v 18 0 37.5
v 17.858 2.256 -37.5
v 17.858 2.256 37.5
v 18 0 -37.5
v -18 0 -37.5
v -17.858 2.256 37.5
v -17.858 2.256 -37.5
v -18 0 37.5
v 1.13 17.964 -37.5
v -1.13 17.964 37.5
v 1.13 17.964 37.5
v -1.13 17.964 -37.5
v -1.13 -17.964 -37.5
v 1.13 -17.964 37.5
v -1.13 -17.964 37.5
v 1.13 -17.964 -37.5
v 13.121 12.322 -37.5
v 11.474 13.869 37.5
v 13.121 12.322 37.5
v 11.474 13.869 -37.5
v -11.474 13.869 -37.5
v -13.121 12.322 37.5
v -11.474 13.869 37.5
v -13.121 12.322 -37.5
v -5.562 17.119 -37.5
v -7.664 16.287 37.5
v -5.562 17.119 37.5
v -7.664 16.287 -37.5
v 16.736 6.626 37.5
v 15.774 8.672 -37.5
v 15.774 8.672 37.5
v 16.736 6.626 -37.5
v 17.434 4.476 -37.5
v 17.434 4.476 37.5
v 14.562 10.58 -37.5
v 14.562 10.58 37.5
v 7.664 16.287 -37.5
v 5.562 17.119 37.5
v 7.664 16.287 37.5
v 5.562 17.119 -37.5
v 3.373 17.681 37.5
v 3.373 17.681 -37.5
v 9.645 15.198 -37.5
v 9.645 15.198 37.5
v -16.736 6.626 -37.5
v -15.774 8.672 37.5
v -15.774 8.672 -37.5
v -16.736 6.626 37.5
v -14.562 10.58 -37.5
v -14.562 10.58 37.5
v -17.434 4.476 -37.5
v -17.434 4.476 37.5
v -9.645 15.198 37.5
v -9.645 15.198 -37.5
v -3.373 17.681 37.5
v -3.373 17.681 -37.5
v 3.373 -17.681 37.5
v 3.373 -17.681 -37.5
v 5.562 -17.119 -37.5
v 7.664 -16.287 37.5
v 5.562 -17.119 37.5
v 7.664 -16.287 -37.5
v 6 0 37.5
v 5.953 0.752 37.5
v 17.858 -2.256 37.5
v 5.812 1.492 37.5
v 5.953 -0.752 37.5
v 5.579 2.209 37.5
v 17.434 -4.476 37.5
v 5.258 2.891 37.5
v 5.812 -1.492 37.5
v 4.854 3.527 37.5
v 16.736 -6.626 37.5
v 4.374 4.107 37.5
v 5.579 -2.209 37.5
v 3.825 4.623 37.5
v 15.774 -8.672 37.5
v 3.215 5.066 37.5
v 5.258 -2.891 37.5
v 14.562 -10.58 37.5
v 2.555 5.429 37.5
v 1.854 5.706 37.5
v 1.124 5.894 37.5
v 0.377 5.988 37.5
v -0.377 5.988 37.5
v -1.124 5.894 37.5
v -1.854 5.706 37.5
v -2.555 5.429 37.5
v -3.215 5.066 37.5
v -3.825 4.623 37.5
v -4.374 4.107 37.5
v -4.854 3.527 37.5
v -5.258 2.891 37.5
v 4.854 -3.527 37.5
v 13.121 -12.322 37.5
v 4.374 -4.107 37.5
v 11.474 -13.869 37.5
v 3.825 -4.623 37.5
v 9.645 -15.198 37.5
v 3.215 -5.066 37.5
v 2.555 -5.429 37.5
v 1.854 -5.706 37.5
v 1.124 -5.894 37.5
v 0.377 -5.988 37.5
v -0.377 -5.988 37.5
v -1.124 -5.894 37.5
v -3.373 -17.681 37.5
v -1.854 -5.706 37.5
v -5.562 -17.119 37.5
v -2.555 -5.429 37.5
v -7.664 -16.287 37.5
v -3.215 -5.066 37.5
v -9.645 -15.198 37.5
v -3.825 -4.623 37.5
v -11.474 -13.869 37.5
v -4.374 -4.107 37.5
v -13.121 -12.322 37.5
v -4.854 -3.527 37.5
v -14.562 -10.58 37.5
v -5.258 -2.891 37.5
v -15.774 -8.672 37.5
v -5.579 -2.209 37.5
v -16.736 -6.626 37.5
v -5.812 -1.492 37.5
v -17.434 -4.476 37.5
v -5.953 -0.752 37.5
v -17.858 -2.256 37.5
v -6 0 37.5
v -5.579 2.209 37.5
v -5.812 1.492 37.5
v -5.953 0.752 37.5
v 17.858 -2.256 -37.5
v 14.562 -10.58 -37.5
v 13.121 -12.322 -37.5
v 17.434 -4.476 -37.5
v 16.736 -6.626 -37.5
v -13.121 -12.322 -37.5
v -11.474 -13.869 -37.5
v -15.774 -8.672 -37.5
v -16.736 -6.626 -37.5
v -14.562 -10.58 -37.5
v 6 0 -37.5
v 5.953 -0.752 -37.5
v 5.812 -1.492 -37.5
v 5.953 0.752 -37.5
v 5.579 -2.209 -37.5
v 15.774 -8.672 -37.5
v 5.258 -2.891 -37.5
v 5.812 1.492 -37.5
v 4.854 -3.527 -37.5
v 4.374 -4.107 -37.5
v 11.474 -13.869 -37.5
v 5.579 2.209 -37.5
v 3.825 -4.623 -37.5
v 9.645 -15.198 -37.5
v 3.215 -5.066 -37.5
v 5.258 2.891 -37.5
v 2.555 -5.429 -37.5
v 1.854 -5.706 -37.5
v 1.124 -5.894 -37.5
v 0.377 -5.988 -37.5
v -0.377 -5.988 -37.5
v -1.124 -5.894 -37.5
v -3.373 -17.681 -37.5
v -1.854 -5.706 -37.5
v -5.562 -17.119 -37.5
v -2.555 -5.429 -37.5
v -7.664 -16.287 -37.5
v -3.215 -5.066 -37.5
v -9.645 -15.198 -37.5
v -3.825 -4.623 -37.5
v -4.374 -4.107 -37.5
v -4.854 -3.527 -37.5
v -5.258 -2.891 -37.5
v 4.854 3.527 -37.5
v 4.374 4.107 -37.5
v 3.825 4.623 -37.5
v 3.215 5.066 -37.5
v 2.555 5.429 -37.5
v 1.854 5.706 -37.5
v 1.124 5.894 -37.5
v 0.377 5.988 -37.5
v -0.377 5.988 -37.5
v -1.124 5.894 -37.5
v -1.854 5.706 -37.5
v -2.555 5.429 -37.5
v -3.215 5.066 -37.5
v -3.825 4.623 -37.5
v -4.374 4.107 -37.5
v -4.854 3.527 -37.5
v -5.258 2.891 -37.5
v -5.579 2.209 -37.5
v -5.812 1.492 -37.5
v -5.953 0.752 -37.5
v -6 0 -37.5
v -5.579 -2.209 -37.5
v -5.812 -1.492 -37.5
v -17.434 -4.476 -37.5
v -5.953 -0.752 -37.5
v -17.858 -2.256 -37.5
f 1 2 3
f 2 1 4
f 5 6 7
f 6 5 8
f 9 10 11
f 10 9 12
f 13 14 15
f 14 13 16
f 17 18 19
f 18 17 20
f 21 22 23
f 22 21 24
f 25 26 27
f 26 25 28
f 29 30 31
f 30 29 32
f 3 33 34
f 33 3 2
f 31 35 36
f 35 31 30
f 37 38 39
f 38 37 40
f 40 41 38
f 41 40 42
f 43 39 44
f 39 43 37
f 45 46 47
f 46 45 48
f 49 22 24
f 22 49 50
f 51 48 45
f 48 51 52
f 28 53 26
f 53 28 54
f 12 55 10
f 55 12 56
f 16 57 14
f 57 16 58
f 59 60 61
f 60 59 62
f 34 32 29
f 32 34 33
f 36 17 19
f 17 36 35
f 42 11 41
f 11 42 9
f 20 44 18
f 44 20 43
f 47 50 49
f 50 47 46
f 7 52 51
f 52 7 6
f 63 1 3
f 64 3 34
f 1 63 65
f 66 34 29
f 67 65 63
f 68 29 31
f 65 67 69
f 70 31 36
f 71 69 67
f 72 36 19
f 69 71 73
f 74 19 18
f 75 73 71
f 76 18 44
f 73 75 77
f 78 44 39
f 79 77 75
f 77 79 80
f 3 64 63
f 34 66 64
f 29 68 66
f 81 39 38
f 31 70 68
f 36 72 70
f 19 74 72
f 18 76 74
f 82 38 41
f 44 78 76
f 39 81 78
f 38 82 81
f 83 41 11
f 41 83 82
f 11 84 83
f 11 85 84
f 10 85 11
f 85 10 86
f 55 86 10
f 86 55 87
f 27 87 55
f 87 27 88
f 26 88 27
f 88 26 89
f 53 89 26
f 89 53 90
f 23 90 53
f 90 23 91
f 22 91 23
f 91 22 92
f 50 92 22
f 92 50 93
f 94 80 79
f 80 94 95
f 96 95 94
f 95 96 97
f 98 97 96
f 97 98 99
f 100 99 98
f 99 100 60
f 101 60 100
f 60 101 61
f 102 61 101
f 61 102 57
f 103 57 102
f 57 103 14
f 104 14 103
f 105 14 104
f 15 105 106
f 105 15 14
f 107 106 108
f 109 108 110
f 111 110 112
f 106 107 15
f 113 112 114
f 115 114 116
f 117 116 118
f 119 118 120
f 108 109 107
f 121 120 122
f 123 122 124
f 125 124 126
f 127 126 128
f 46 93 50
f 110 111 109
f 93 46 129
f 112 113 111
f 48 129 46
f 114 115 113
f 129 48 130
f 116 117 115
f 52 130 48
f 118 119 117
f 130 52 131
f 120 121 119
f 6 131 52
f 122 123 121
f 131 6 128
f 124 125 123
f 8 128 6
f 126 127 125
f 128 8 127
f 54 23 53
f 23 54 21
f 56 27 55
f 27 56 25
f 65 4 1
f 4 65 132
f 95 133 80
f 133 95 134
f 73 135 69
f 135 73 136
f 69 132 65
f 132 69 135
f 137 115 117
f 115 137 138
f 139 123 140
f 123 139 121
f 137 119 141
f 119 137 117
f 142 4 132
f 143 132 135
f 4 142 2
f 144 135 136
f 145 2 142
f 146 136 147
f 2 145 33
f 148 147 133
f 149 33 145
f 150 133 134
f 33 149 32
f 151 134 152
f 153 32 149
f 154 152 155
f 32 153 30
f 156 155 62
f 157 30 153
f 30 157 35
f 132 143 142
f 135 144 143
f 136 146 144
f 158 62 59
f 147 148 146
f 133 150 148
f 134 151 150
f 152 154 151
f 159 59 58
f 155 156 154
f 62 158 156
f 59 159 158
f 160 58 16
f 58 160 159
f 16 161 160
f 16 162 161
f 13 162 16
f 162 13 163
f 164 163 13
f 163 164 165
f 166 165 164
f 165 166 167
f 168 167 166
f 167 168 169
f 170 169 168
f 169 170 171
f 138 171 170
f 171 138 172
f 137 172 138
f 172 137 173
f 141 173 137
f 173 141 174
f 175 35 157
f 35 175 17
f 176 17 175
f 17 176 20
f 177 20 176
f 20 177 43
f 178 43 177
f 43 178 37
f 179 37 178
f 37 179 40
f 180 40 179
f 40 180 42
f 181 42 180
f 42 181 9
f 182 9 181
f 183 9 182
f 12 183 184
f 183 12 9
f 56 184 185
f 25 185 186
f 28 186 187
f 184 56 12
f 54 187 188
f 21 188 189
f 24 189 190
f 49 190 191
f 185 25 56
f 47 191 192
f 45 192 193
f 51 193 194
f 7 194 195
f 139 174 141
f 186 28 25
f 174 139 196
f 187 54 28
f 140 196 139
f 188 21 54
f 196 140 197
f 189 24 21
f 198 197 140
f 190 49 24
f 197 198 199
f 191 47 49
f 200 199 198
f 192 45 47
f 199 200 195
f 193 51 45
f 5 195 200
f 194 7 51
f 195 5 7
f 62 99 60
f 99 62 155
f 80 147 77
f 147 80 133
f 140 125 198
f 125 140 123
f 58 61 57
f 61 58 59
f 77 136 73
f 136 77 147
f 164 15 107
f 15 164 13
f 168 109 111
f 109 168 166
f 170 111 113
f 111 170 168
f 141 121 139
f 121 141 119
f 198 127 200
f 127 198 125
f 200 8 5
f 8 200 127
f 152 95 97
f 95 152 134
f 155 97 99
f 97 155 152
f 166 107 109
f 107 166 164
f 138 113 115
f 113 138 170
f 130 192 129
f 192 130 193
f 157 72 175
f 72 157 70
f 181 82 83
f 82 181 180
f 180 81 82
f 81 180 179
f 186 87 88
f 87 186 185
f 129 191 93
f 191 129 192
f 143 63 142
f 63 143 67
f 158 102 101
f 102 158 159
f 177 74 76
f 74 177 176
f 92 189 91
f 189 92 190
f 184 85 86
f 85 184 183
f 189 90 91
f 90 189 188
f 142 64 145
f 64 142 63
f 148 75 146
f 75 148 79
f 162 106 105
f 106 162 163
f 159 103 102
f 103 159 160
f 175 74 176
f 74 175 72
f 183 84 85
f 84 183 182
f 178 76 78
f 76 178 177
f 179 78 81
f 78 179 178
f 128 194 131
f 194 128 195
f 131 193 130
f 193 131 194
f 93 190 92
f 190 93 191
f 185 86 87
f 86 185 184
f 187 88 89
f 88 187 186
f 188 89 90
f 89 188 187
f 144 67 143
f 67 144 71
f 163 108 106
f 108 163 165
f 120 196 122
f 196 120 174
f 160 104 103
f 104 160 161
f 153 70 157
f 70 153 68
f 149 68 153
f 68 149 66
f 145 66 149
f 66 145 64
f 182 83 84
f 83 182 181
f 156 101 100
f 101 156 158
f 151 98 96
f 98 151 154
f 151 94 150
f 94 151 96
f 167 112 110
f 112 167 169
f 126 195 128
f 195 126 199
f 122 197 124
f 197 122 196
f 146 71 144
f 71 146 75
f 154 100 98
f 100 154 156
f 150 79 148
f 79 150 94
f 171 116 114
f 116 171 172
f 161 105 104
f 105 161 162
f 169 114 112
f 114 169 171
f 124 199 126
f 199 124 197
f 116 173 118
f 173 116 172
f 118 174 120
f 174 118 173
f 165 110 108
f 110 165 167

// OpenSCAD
$fn = 50;


difference() {
	union() {
		translate(v = [0, 0, -37.5000000000]) {
			cylinder(h = 75, r = 18.0000000000);
		}
	}
	union() {
		translate(v = [0, 0, -100.0000000000]) {
			cylinder(h = 200, r = 6);
		}
	}
}
